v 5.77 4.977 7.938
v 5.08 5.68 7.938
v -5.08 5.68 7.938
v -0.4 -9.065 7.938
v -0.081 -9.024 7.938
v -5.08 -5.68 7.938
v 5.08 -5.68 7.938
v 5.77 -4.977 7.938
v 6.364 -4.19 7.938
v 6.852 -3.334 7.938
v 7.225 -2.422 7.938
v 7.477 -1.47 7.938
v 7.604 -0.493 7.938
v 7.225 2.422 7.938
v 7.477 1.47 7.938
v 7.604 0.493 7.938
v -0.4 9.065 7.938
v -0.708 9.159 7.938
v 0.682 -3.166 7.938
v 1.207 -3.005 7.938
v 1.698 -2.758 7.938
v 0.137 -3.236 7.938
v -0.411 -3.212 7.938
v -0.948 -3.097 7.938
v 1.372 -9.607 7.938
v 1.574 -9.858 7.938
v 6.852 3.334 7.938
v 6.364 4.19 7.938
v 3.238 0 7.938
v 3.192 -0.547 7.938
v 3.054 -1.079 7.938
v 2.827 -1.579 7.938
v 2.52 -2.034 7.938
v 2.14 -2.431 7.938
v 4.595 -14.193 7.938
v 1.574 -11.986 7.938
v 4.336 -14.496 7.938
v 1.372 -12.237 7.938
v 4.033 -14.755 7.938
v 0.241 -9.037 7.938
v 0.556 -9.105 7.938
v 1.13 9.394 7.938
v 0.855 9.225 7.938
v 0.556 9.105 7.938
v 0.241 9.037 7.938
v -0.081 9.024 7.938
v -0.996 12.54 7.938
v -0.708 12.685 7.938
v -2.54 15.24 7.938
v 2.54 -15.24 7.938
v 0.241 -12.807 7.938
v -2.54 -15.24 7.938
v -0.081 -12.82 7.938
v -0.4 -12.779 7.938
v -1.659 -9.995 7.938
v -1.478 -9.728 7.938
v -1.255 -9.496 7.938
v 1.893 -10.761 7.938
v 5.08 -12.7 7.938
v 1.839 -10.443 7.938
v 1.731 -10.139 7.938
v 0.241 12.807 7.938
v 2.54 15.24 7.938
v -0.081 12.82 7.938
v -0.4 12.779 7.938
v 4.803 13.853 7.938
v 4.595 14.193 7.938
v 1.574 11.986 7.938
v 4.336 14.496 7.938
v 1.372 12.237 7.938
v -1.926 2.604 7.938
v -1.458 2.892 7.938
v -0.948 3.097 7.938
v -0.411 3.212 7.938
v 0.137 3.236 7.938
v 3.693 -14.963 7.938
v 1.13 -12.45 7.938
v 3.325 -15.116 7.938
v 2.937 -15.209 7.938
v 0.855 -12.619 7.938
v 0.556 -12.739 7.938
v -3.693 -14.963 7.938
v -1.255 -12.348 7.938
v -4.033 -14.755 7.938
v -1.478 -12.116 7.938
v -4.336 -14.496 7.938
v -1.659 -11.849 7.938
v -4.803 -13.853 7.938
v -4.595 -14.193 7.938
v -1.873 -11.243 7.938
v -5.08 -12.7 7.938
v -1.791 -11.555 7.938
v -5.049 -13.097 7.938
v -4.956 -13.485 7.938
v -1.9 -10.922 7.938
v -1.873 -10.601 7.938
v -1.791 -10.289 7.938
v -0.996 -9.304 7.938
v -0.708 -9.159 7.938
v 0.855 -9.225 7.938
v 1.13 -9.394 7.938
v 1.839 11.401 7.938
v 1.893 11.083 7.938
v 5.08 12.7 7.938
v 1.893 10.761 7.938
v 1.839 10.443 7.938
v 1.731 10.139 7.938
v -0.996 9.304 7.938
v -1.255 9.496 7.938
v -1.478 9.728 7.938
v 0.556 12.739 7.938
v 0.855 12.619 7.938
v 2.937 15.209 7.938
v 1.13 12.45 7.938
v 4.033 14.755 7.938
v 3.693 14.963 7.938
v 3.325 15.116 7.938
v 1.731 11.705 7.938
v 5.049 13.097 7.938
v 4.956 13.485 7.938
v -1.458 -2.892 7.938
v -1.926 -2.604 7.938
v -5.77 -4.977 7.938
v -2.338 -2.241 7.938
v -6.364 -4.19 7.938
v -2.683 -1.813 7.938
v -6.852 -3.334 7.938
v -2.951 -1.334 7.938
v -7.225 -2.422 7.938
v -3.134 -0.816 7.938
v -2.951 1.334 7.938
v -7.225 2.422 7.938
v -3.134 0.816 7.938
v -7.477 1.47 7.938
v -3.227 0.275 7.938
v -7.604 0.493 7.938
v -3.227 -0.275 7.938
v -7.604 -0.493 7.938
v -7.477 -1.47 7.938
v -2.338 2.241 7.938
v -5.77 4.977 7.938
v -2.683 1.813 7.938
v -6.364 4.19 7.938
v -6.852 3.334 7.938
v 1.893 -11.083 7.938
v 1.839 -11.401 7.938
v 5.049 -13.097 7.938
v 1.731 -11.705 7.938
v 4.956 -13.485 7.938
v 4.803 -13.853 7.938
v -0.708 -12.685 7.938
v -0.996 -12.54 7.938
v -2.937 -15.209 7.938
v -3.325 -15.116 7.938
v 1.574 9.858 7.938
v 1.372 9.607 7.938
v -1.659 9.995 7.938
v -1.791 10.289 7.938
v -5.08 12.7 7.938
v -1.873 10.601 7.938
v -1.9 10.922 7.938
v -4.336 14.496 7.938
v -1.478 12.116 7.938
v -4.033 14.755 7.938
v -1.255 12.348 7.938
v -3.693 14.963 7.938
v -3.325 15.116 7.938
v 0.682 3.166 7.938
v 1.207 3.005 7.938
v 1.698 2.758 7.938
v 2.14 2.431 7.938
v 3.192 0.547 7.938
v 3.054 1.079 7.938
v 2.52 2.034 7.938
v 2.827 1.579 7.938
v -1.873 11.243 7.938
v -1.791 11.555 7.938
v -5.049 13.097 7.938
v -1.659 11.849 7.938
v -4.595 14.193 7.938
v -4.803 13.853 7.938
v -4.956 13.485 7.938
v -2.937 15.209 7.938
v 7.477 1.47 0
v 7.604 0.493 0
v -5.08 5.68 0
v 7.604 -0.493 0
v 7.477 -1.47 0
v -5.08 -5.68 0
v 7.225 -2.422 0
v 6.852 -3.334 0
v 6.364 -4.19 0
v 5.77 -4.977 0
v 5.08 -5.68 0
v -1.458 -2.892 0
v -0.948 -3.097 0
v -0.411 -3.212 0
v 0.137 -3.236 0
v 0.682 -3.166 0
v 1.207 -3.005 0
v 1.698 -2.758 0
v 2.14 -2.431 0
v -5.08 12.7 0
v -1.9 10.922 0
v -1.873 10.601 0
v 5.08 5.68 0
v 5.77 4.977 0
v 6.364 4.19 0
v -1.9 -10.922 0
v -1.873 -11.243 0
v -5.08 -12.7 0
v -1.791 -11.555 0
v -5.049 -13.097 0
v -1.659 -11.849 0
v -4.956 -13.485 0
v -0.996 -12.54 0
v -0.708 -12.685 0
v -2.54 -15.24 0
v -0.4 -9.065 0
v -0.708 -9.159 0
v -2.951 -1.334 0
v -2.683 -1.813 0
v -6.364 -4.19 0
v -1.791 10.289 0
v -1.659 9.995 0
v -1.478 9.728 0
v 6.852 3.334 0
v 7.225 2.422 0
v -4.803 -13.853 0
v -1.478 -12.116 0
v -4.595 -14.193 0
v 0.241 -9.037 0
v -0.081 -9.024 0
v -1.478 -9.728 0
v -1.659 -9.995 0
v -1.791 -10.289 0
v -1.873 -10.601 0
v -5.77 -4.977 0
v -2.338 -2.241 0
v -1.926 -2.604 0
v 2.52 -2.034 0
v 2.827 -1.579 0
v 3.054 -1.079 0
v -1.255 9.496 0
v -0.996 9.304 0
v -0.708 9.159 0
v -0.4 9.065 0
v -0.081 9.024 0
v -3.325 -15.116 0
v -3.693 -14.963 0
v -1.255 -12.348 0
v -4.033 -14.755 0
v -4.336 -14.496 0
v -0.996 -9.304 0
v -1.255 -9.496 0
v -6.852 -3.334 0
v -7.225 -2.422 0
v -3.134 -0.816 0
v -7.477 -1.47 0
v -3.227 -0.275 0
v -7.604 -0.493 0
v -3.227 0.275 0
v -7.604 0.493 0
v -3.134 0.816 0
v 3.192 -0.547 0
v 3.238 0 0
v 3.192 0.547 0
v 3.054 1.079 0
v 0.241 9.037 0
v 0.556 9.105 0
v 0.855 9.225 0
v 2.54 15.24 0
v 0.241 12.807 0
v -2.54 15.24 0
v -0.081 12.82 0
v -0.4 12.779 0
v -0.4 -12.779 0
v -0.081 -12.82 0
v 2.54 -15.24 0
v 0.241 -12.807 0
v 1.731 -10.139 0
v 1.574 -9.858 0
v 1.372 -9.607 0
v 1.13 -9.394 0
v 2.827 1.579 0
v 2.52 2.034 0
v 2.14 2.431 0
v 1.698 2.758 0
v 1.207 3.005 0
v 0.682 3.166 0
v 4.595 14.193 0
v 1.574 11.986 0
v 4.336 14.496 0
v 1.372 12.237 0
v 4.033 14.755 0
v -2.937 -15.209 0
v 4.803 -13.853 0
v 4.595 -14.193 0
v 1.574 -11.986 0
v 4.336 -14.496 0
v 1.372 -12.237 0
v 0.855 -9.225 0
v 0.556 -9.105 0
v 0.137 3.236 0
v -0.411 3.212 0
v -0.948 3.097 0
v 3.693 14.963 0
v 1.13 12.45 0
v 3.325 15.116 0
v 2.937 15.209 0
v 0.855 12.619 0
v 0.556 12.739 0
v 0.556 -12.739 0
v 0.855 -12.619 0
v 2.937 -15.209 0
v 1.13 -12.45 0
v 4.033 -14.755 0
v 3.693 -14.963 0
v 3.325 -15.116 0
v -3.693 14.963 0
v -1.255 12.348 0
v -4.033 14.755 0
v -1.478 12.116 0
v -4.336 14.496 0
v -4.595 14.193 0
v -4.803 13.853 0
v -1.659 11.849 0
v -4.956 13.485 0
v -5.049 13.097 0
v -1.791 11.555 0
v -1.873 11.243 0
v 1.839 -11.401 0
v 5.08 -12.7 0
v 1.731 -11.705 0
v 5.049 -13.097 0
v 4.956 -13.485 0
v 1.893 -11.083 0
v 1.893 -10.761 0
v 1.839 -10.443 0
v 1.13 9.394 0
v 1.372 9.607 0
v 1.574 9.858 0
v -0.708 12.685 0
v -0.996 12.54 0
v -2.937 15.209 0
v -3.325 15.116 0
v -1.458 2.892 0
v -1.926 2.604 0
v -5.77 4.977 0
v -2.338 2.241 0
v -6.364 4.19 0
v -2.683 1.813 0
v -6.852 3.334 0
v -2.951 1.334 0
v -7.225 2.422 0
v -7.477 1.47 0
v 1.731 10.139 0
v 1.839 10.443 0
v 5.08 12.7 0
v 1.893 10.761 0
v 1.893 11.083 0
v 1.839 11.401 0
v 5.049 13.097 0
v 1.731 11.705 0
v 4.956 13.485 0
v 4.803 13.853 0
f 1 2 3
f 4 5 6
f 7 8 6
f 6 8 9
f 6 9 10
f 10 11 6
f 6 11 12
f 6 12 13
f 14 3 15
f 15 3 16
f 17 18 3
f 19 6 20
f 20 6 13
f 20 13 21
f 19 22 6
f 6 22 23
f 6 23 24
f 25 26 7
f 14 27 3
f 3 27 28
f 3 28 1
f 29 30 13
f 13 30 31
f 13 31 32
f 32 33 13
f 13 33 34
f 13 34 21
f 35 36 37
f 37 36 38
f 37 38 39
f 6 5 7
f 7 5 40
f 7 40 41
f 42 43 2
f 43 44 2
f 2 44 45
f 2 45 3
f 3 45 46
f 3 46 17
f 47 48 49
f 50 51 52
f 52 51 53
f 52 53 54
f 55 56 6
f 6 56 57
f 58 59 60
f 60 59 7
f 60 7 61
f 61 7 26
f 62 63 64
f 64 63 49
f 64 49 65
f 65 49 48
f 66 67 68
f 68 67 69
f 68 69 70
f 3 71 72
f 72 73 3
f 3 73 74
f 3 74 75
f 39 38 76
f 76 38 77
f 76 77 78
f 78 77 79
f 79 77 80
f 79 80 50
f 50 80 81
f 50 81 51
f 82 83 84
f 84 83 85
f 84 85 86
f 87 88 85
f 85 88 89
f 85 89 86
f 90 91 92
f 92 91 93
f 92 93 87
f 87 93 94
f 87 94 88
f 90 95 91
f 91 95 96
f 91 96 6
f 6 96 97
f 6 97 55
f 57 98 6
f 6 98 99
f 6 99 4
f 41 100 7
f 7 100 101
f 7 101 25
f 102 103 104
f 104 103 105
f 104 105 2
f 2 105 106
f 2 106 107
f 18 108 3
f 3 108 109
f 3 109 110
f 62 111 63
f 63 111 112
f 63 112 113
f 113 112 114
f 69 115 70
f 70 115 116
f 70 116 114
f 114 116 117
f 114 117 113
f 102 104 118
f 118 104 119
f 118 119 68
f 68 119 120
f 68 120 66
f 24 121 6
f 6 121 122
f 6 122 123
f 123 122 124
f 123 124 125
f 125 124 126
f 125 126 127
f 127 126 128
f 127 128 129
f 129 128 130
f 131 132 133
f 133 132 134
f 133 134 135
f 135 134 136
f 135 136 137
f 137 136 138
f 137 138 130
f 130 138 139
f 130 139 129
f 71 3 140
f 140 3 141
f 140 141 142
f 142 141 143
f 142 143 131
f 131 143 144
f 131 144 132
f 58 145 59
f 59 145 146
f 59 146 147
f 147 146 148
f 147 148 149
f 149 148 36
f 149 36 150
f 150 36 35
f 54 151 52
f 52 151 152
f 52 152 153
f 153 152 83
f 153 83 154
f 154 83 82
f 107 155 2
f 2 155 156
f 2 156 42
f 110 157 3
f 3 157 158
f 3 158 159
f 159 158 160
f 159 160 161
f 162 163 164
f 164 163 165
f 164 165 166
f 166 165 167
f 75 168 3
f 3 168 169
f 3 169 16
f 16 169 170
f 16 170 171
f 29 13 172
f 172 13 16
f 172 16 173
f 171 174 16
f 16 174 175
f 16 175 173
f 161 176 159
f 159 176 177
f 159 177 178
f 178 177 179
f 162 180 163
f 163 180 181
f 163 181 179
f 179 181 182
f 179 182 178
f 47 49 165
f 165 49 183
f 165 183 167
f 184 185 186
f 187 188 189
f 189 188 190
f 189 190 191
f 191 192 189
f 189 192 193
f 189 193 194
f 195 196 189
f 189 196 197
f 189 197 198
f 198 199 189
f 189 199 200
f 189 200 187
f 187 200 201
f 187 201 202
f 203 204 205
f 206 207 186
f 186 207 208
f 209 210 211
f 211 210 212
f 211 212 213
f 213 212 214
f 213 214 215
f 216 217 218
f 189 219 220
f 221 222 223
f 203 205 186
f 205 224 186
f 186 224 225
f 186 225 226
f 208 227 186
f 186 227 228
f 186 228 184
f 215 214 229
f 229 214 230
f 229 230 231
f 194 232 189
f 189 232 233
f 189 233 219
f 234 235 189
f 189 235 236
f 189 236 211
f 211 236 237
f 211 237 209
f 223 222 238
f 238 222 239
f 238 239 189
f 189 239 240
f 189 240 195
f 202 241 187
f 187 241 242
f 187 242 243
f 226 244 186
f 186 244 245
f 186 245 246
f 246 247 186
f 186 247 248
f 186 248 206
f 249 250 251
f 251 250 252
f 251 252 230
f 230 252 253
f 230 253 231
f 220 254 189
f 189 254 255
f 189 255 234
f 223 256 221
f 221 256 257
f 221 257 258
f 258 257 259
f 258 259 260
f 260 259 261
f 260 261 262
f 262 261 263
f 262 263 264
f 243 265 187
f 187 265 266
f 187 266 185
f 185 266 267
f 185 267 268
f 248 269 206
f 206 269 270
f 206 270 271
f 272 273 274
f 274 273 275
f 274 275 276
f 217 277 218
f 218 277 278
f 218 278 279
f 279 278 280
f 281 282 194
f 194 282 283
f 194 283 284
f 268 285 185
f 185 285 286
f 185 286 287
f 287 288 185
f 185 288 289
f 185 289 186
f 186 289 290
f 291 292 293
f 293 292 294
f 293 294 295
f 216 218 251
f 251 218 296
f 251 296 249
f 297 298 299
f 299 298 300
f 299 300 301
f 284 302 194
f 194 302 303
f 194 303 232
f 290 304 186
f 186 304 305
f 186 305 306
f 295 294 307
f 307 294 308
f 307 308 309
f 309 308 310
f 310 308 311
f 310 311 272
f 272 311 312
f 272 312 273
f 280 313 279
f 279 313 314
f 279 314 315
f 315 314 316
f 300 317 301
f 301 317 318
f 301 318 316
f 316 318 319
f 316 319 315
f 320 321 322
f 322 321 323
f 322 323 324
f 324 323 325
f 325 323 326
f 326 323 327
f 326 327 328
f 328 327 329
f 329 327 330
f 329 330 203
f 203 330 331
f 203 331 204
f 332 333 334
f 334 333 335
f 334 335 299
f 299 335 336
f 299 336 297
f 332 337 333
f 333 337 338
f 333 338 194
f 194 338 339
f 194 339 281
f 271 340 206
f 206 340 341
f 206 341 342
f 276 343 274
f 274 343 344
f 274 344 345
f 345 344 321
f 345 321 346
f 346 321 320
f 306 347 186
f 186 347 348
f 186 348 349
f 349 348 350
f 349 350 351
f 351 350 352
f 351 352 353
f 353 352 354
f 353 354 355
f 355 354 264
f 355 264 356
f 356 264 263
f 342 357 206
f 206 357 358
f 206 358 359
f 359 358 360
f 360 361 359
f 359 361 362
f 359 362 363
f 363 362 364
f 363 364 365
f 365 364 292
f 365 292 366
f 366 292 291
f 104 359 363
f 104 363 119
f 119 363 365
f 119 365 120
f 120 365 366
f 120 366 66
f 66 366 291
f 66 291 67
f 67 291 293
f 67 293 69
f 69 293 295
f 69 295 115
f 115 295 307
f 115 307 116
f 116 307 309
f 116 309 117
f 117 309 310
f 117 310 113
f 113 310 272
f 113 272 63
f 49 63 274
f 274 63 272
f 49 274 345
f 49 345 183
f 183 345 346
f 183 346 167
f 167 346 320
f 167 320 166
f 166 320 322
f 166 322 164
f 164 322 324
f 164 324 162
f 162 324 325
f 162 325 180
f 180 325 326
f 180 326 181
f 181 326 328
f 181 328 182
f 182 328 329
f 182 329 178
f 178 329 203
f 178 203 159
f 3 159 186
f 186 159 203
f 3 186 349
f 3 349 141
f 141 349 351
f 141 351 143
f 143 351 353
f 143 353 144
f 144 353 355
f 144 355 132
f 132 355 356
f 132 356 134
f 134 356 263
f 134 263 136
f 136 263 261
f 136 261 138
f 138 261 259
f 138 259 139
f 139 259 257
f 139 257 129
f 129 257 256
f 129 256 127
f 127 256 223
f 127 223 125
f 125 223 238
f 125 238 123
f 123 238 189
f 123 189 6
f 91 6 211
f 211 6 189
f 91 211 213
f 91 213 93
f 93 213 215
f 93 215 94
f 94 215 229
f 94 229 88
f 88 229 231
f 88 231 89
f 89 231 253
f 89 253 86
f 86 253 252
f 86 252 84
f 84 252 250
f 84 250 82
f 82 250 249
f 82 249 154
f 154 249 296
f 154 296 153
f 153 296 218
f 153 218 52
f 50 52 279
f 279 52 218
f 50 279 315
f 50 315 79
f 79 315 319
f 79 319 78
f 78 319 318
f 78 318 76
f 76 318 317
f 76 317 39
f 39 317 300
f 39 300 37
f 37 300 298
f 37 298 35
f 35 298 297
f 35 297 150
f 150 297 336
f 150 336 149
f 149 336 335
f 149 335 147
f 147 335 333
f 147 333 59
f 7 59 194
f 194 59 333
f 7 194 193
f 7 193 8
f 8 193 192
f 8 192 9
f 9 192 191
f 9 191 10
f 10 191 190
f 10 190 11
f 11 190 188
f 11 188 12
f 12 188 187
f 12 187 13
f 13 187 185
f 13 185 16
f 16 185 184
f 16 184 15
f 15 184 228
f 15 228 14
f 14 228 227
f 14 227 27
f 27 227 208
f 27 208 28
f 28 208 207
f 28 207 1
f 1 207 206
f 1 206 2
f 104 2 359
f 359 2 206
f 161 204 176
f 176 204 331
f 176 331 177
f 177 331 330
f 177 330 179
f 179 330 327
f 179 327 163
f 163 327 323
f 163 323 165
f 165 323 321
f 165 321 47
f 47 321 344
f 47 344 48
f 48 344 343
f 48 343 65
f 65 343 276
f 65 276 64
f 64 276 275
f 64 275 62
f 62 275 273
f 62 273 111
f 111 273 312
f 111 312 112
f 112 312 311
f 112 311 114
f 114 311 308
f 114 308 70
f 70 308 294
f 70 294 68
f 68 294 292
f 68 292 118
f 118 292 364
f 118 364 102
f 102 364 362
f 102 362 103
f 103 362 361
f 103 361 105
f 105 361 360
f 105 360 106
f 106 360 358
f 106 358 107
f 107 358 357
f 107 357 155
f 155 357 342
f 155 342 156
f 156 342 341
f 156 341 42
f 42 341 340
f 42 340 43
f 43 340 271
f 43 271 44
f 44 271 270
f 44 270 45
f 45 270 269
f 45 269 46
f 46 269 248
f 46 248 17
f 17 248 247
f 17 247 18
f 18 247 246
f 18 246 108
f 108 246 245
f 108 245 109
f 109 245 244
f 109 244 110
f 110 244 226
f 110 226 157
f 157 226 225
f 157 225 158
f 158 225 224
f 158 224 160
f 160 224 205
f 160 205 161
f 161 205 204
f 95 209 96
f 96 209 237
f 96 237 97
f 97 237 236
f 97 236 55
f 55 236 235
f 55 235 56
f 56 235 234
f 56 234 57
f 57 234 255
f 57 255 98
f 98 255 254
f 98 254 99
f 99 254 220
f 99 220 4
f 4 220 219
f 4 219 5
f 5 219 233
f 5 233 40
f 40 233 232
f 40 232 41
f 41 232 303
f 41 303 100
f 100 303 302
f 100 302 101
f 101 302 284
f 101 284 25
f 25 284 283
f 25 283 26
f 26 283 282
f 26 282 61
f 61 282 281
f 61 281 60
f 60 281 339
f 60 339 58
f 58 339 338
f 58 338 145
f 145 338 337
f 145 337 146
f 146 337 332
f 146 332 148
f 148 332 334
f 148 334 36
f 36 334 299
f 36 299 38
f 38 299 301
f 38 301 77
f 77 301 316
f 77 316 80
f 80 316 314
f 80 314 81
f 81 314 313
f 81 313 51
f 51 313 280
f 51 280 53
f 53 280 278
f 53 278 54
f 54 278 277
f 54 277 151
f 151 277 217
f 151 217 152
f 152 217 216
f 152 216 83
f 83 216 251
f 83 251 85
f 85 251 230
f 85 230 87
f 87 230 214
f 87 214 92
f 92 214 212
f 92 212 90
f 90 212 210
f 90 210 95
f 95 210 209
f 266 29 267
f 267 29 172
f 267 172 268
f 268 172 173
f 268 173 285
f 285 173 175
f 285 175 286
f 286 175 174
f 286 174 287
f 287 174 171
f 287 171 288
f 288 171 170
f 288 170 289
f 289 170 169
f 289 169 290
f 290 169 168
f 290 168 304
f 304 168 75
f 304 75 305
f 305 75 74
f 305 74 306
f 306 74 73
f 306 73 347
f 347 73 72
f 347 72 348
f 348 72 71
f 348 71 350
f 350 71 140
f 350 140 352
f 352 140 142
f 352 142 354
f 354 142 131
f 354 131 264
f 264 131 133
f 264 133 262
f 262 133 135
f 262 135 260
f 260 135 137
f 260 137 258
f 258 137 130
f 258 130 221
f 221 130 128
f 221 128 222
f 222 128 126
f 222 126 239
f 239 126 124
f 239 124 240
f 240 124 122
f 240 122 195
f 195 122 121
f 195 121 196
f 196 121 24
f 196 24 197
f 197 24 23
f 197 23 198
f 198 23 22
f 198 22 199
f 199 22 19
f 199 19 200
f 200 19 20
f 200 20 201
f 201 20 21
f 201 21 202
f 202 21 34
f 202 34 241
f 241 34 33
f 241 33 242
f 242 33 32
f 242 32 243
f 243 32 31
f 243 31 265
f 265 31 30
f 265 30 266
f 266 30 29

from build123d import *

# Parameters (mm, degrees)
EXTRUDE_1_DEPTH     = 7.9375
SKETCH_4_R          = 1.9
CUT_EXTRUDE_3_DEPTH = 19.796965347
SKETCH_5_R          = 3.2385
CUT_EXTRUDE_4_DEPTH = 19.796965347


with BuildPart() as part:
    # 草图1 → 凸台-拉伸1 (new body)
    with BuildSketch(Plane.XY):
        with BuildLine():
            Line((-5.08, 12.7), (-5.08, 5.679612663))
            ThreePointArc((-5.08, 5.679612663), (-7.62, 0), (-5.08, -5.679612663))
            Line((-5.08, -5.679612663), (-5.08, -12.7))
            ThreePointArc((-5.08, -12.7), (-4.336051224, -14.496051224), (-2.54, -15.24))
            Line((-2.54, -15.24), (2.54, -15.24))
            ThreePointArc((2.54, -15.24), (4.336051224, -14.496051224), (5.08, -12.7))
            Line((5.08, -12.7), (5.08, -5.679612663))
            ThreePointArc((5.08, -5.679612663), (7.62, 0), (5.08, 5.679612663))
            Line((5.08, 5.679612663), (5.08, 12.7))
            ThreePointArc((5.08, 12.7), (4.336051224, 14.496051224), (2.54, 15.24))
            Line((2.54, 15.24), (-2.54, 15.24))
            ThreePointArc((-2.54, 15.24), (-4.336051224, 14.496051224), (-5.08, 12.7))
        make_face()
    extrude(amount=EXTRUDE_1_DEPTH)

    # 草图4 → 切除-拉伸3 (cut, through all)
    with BuildSketch(Plane(origin=(0, 0, 0), x_dir=(-1, 0, 0), z_dir=(0, 0, -1))):
        with Locations((0, 10.922)):
            Circle(SKETCH_4_R)
    cut_extrude_3 = extrude(amount=-CUT_EXTRUDE_3_DEPTH, mode=Mode.SUBTRACT)

    # 镜向1: 切除-拉伸3 across plane
    add(cut_extrude_3.mirror(Plane.ZX), mode=Mode.SUBTRACT)

    # 草图5 → 切除-拉伸4 (cut, through all)
    with BuildSketch(Plane.XY.offset(7.9375)):
        Circle(SKETCH_5_R)
    extrude(amount=-CUT_EXTRUDE_4_DEPTH, mode=Mode.SUBTRACT)


solid = part.part
